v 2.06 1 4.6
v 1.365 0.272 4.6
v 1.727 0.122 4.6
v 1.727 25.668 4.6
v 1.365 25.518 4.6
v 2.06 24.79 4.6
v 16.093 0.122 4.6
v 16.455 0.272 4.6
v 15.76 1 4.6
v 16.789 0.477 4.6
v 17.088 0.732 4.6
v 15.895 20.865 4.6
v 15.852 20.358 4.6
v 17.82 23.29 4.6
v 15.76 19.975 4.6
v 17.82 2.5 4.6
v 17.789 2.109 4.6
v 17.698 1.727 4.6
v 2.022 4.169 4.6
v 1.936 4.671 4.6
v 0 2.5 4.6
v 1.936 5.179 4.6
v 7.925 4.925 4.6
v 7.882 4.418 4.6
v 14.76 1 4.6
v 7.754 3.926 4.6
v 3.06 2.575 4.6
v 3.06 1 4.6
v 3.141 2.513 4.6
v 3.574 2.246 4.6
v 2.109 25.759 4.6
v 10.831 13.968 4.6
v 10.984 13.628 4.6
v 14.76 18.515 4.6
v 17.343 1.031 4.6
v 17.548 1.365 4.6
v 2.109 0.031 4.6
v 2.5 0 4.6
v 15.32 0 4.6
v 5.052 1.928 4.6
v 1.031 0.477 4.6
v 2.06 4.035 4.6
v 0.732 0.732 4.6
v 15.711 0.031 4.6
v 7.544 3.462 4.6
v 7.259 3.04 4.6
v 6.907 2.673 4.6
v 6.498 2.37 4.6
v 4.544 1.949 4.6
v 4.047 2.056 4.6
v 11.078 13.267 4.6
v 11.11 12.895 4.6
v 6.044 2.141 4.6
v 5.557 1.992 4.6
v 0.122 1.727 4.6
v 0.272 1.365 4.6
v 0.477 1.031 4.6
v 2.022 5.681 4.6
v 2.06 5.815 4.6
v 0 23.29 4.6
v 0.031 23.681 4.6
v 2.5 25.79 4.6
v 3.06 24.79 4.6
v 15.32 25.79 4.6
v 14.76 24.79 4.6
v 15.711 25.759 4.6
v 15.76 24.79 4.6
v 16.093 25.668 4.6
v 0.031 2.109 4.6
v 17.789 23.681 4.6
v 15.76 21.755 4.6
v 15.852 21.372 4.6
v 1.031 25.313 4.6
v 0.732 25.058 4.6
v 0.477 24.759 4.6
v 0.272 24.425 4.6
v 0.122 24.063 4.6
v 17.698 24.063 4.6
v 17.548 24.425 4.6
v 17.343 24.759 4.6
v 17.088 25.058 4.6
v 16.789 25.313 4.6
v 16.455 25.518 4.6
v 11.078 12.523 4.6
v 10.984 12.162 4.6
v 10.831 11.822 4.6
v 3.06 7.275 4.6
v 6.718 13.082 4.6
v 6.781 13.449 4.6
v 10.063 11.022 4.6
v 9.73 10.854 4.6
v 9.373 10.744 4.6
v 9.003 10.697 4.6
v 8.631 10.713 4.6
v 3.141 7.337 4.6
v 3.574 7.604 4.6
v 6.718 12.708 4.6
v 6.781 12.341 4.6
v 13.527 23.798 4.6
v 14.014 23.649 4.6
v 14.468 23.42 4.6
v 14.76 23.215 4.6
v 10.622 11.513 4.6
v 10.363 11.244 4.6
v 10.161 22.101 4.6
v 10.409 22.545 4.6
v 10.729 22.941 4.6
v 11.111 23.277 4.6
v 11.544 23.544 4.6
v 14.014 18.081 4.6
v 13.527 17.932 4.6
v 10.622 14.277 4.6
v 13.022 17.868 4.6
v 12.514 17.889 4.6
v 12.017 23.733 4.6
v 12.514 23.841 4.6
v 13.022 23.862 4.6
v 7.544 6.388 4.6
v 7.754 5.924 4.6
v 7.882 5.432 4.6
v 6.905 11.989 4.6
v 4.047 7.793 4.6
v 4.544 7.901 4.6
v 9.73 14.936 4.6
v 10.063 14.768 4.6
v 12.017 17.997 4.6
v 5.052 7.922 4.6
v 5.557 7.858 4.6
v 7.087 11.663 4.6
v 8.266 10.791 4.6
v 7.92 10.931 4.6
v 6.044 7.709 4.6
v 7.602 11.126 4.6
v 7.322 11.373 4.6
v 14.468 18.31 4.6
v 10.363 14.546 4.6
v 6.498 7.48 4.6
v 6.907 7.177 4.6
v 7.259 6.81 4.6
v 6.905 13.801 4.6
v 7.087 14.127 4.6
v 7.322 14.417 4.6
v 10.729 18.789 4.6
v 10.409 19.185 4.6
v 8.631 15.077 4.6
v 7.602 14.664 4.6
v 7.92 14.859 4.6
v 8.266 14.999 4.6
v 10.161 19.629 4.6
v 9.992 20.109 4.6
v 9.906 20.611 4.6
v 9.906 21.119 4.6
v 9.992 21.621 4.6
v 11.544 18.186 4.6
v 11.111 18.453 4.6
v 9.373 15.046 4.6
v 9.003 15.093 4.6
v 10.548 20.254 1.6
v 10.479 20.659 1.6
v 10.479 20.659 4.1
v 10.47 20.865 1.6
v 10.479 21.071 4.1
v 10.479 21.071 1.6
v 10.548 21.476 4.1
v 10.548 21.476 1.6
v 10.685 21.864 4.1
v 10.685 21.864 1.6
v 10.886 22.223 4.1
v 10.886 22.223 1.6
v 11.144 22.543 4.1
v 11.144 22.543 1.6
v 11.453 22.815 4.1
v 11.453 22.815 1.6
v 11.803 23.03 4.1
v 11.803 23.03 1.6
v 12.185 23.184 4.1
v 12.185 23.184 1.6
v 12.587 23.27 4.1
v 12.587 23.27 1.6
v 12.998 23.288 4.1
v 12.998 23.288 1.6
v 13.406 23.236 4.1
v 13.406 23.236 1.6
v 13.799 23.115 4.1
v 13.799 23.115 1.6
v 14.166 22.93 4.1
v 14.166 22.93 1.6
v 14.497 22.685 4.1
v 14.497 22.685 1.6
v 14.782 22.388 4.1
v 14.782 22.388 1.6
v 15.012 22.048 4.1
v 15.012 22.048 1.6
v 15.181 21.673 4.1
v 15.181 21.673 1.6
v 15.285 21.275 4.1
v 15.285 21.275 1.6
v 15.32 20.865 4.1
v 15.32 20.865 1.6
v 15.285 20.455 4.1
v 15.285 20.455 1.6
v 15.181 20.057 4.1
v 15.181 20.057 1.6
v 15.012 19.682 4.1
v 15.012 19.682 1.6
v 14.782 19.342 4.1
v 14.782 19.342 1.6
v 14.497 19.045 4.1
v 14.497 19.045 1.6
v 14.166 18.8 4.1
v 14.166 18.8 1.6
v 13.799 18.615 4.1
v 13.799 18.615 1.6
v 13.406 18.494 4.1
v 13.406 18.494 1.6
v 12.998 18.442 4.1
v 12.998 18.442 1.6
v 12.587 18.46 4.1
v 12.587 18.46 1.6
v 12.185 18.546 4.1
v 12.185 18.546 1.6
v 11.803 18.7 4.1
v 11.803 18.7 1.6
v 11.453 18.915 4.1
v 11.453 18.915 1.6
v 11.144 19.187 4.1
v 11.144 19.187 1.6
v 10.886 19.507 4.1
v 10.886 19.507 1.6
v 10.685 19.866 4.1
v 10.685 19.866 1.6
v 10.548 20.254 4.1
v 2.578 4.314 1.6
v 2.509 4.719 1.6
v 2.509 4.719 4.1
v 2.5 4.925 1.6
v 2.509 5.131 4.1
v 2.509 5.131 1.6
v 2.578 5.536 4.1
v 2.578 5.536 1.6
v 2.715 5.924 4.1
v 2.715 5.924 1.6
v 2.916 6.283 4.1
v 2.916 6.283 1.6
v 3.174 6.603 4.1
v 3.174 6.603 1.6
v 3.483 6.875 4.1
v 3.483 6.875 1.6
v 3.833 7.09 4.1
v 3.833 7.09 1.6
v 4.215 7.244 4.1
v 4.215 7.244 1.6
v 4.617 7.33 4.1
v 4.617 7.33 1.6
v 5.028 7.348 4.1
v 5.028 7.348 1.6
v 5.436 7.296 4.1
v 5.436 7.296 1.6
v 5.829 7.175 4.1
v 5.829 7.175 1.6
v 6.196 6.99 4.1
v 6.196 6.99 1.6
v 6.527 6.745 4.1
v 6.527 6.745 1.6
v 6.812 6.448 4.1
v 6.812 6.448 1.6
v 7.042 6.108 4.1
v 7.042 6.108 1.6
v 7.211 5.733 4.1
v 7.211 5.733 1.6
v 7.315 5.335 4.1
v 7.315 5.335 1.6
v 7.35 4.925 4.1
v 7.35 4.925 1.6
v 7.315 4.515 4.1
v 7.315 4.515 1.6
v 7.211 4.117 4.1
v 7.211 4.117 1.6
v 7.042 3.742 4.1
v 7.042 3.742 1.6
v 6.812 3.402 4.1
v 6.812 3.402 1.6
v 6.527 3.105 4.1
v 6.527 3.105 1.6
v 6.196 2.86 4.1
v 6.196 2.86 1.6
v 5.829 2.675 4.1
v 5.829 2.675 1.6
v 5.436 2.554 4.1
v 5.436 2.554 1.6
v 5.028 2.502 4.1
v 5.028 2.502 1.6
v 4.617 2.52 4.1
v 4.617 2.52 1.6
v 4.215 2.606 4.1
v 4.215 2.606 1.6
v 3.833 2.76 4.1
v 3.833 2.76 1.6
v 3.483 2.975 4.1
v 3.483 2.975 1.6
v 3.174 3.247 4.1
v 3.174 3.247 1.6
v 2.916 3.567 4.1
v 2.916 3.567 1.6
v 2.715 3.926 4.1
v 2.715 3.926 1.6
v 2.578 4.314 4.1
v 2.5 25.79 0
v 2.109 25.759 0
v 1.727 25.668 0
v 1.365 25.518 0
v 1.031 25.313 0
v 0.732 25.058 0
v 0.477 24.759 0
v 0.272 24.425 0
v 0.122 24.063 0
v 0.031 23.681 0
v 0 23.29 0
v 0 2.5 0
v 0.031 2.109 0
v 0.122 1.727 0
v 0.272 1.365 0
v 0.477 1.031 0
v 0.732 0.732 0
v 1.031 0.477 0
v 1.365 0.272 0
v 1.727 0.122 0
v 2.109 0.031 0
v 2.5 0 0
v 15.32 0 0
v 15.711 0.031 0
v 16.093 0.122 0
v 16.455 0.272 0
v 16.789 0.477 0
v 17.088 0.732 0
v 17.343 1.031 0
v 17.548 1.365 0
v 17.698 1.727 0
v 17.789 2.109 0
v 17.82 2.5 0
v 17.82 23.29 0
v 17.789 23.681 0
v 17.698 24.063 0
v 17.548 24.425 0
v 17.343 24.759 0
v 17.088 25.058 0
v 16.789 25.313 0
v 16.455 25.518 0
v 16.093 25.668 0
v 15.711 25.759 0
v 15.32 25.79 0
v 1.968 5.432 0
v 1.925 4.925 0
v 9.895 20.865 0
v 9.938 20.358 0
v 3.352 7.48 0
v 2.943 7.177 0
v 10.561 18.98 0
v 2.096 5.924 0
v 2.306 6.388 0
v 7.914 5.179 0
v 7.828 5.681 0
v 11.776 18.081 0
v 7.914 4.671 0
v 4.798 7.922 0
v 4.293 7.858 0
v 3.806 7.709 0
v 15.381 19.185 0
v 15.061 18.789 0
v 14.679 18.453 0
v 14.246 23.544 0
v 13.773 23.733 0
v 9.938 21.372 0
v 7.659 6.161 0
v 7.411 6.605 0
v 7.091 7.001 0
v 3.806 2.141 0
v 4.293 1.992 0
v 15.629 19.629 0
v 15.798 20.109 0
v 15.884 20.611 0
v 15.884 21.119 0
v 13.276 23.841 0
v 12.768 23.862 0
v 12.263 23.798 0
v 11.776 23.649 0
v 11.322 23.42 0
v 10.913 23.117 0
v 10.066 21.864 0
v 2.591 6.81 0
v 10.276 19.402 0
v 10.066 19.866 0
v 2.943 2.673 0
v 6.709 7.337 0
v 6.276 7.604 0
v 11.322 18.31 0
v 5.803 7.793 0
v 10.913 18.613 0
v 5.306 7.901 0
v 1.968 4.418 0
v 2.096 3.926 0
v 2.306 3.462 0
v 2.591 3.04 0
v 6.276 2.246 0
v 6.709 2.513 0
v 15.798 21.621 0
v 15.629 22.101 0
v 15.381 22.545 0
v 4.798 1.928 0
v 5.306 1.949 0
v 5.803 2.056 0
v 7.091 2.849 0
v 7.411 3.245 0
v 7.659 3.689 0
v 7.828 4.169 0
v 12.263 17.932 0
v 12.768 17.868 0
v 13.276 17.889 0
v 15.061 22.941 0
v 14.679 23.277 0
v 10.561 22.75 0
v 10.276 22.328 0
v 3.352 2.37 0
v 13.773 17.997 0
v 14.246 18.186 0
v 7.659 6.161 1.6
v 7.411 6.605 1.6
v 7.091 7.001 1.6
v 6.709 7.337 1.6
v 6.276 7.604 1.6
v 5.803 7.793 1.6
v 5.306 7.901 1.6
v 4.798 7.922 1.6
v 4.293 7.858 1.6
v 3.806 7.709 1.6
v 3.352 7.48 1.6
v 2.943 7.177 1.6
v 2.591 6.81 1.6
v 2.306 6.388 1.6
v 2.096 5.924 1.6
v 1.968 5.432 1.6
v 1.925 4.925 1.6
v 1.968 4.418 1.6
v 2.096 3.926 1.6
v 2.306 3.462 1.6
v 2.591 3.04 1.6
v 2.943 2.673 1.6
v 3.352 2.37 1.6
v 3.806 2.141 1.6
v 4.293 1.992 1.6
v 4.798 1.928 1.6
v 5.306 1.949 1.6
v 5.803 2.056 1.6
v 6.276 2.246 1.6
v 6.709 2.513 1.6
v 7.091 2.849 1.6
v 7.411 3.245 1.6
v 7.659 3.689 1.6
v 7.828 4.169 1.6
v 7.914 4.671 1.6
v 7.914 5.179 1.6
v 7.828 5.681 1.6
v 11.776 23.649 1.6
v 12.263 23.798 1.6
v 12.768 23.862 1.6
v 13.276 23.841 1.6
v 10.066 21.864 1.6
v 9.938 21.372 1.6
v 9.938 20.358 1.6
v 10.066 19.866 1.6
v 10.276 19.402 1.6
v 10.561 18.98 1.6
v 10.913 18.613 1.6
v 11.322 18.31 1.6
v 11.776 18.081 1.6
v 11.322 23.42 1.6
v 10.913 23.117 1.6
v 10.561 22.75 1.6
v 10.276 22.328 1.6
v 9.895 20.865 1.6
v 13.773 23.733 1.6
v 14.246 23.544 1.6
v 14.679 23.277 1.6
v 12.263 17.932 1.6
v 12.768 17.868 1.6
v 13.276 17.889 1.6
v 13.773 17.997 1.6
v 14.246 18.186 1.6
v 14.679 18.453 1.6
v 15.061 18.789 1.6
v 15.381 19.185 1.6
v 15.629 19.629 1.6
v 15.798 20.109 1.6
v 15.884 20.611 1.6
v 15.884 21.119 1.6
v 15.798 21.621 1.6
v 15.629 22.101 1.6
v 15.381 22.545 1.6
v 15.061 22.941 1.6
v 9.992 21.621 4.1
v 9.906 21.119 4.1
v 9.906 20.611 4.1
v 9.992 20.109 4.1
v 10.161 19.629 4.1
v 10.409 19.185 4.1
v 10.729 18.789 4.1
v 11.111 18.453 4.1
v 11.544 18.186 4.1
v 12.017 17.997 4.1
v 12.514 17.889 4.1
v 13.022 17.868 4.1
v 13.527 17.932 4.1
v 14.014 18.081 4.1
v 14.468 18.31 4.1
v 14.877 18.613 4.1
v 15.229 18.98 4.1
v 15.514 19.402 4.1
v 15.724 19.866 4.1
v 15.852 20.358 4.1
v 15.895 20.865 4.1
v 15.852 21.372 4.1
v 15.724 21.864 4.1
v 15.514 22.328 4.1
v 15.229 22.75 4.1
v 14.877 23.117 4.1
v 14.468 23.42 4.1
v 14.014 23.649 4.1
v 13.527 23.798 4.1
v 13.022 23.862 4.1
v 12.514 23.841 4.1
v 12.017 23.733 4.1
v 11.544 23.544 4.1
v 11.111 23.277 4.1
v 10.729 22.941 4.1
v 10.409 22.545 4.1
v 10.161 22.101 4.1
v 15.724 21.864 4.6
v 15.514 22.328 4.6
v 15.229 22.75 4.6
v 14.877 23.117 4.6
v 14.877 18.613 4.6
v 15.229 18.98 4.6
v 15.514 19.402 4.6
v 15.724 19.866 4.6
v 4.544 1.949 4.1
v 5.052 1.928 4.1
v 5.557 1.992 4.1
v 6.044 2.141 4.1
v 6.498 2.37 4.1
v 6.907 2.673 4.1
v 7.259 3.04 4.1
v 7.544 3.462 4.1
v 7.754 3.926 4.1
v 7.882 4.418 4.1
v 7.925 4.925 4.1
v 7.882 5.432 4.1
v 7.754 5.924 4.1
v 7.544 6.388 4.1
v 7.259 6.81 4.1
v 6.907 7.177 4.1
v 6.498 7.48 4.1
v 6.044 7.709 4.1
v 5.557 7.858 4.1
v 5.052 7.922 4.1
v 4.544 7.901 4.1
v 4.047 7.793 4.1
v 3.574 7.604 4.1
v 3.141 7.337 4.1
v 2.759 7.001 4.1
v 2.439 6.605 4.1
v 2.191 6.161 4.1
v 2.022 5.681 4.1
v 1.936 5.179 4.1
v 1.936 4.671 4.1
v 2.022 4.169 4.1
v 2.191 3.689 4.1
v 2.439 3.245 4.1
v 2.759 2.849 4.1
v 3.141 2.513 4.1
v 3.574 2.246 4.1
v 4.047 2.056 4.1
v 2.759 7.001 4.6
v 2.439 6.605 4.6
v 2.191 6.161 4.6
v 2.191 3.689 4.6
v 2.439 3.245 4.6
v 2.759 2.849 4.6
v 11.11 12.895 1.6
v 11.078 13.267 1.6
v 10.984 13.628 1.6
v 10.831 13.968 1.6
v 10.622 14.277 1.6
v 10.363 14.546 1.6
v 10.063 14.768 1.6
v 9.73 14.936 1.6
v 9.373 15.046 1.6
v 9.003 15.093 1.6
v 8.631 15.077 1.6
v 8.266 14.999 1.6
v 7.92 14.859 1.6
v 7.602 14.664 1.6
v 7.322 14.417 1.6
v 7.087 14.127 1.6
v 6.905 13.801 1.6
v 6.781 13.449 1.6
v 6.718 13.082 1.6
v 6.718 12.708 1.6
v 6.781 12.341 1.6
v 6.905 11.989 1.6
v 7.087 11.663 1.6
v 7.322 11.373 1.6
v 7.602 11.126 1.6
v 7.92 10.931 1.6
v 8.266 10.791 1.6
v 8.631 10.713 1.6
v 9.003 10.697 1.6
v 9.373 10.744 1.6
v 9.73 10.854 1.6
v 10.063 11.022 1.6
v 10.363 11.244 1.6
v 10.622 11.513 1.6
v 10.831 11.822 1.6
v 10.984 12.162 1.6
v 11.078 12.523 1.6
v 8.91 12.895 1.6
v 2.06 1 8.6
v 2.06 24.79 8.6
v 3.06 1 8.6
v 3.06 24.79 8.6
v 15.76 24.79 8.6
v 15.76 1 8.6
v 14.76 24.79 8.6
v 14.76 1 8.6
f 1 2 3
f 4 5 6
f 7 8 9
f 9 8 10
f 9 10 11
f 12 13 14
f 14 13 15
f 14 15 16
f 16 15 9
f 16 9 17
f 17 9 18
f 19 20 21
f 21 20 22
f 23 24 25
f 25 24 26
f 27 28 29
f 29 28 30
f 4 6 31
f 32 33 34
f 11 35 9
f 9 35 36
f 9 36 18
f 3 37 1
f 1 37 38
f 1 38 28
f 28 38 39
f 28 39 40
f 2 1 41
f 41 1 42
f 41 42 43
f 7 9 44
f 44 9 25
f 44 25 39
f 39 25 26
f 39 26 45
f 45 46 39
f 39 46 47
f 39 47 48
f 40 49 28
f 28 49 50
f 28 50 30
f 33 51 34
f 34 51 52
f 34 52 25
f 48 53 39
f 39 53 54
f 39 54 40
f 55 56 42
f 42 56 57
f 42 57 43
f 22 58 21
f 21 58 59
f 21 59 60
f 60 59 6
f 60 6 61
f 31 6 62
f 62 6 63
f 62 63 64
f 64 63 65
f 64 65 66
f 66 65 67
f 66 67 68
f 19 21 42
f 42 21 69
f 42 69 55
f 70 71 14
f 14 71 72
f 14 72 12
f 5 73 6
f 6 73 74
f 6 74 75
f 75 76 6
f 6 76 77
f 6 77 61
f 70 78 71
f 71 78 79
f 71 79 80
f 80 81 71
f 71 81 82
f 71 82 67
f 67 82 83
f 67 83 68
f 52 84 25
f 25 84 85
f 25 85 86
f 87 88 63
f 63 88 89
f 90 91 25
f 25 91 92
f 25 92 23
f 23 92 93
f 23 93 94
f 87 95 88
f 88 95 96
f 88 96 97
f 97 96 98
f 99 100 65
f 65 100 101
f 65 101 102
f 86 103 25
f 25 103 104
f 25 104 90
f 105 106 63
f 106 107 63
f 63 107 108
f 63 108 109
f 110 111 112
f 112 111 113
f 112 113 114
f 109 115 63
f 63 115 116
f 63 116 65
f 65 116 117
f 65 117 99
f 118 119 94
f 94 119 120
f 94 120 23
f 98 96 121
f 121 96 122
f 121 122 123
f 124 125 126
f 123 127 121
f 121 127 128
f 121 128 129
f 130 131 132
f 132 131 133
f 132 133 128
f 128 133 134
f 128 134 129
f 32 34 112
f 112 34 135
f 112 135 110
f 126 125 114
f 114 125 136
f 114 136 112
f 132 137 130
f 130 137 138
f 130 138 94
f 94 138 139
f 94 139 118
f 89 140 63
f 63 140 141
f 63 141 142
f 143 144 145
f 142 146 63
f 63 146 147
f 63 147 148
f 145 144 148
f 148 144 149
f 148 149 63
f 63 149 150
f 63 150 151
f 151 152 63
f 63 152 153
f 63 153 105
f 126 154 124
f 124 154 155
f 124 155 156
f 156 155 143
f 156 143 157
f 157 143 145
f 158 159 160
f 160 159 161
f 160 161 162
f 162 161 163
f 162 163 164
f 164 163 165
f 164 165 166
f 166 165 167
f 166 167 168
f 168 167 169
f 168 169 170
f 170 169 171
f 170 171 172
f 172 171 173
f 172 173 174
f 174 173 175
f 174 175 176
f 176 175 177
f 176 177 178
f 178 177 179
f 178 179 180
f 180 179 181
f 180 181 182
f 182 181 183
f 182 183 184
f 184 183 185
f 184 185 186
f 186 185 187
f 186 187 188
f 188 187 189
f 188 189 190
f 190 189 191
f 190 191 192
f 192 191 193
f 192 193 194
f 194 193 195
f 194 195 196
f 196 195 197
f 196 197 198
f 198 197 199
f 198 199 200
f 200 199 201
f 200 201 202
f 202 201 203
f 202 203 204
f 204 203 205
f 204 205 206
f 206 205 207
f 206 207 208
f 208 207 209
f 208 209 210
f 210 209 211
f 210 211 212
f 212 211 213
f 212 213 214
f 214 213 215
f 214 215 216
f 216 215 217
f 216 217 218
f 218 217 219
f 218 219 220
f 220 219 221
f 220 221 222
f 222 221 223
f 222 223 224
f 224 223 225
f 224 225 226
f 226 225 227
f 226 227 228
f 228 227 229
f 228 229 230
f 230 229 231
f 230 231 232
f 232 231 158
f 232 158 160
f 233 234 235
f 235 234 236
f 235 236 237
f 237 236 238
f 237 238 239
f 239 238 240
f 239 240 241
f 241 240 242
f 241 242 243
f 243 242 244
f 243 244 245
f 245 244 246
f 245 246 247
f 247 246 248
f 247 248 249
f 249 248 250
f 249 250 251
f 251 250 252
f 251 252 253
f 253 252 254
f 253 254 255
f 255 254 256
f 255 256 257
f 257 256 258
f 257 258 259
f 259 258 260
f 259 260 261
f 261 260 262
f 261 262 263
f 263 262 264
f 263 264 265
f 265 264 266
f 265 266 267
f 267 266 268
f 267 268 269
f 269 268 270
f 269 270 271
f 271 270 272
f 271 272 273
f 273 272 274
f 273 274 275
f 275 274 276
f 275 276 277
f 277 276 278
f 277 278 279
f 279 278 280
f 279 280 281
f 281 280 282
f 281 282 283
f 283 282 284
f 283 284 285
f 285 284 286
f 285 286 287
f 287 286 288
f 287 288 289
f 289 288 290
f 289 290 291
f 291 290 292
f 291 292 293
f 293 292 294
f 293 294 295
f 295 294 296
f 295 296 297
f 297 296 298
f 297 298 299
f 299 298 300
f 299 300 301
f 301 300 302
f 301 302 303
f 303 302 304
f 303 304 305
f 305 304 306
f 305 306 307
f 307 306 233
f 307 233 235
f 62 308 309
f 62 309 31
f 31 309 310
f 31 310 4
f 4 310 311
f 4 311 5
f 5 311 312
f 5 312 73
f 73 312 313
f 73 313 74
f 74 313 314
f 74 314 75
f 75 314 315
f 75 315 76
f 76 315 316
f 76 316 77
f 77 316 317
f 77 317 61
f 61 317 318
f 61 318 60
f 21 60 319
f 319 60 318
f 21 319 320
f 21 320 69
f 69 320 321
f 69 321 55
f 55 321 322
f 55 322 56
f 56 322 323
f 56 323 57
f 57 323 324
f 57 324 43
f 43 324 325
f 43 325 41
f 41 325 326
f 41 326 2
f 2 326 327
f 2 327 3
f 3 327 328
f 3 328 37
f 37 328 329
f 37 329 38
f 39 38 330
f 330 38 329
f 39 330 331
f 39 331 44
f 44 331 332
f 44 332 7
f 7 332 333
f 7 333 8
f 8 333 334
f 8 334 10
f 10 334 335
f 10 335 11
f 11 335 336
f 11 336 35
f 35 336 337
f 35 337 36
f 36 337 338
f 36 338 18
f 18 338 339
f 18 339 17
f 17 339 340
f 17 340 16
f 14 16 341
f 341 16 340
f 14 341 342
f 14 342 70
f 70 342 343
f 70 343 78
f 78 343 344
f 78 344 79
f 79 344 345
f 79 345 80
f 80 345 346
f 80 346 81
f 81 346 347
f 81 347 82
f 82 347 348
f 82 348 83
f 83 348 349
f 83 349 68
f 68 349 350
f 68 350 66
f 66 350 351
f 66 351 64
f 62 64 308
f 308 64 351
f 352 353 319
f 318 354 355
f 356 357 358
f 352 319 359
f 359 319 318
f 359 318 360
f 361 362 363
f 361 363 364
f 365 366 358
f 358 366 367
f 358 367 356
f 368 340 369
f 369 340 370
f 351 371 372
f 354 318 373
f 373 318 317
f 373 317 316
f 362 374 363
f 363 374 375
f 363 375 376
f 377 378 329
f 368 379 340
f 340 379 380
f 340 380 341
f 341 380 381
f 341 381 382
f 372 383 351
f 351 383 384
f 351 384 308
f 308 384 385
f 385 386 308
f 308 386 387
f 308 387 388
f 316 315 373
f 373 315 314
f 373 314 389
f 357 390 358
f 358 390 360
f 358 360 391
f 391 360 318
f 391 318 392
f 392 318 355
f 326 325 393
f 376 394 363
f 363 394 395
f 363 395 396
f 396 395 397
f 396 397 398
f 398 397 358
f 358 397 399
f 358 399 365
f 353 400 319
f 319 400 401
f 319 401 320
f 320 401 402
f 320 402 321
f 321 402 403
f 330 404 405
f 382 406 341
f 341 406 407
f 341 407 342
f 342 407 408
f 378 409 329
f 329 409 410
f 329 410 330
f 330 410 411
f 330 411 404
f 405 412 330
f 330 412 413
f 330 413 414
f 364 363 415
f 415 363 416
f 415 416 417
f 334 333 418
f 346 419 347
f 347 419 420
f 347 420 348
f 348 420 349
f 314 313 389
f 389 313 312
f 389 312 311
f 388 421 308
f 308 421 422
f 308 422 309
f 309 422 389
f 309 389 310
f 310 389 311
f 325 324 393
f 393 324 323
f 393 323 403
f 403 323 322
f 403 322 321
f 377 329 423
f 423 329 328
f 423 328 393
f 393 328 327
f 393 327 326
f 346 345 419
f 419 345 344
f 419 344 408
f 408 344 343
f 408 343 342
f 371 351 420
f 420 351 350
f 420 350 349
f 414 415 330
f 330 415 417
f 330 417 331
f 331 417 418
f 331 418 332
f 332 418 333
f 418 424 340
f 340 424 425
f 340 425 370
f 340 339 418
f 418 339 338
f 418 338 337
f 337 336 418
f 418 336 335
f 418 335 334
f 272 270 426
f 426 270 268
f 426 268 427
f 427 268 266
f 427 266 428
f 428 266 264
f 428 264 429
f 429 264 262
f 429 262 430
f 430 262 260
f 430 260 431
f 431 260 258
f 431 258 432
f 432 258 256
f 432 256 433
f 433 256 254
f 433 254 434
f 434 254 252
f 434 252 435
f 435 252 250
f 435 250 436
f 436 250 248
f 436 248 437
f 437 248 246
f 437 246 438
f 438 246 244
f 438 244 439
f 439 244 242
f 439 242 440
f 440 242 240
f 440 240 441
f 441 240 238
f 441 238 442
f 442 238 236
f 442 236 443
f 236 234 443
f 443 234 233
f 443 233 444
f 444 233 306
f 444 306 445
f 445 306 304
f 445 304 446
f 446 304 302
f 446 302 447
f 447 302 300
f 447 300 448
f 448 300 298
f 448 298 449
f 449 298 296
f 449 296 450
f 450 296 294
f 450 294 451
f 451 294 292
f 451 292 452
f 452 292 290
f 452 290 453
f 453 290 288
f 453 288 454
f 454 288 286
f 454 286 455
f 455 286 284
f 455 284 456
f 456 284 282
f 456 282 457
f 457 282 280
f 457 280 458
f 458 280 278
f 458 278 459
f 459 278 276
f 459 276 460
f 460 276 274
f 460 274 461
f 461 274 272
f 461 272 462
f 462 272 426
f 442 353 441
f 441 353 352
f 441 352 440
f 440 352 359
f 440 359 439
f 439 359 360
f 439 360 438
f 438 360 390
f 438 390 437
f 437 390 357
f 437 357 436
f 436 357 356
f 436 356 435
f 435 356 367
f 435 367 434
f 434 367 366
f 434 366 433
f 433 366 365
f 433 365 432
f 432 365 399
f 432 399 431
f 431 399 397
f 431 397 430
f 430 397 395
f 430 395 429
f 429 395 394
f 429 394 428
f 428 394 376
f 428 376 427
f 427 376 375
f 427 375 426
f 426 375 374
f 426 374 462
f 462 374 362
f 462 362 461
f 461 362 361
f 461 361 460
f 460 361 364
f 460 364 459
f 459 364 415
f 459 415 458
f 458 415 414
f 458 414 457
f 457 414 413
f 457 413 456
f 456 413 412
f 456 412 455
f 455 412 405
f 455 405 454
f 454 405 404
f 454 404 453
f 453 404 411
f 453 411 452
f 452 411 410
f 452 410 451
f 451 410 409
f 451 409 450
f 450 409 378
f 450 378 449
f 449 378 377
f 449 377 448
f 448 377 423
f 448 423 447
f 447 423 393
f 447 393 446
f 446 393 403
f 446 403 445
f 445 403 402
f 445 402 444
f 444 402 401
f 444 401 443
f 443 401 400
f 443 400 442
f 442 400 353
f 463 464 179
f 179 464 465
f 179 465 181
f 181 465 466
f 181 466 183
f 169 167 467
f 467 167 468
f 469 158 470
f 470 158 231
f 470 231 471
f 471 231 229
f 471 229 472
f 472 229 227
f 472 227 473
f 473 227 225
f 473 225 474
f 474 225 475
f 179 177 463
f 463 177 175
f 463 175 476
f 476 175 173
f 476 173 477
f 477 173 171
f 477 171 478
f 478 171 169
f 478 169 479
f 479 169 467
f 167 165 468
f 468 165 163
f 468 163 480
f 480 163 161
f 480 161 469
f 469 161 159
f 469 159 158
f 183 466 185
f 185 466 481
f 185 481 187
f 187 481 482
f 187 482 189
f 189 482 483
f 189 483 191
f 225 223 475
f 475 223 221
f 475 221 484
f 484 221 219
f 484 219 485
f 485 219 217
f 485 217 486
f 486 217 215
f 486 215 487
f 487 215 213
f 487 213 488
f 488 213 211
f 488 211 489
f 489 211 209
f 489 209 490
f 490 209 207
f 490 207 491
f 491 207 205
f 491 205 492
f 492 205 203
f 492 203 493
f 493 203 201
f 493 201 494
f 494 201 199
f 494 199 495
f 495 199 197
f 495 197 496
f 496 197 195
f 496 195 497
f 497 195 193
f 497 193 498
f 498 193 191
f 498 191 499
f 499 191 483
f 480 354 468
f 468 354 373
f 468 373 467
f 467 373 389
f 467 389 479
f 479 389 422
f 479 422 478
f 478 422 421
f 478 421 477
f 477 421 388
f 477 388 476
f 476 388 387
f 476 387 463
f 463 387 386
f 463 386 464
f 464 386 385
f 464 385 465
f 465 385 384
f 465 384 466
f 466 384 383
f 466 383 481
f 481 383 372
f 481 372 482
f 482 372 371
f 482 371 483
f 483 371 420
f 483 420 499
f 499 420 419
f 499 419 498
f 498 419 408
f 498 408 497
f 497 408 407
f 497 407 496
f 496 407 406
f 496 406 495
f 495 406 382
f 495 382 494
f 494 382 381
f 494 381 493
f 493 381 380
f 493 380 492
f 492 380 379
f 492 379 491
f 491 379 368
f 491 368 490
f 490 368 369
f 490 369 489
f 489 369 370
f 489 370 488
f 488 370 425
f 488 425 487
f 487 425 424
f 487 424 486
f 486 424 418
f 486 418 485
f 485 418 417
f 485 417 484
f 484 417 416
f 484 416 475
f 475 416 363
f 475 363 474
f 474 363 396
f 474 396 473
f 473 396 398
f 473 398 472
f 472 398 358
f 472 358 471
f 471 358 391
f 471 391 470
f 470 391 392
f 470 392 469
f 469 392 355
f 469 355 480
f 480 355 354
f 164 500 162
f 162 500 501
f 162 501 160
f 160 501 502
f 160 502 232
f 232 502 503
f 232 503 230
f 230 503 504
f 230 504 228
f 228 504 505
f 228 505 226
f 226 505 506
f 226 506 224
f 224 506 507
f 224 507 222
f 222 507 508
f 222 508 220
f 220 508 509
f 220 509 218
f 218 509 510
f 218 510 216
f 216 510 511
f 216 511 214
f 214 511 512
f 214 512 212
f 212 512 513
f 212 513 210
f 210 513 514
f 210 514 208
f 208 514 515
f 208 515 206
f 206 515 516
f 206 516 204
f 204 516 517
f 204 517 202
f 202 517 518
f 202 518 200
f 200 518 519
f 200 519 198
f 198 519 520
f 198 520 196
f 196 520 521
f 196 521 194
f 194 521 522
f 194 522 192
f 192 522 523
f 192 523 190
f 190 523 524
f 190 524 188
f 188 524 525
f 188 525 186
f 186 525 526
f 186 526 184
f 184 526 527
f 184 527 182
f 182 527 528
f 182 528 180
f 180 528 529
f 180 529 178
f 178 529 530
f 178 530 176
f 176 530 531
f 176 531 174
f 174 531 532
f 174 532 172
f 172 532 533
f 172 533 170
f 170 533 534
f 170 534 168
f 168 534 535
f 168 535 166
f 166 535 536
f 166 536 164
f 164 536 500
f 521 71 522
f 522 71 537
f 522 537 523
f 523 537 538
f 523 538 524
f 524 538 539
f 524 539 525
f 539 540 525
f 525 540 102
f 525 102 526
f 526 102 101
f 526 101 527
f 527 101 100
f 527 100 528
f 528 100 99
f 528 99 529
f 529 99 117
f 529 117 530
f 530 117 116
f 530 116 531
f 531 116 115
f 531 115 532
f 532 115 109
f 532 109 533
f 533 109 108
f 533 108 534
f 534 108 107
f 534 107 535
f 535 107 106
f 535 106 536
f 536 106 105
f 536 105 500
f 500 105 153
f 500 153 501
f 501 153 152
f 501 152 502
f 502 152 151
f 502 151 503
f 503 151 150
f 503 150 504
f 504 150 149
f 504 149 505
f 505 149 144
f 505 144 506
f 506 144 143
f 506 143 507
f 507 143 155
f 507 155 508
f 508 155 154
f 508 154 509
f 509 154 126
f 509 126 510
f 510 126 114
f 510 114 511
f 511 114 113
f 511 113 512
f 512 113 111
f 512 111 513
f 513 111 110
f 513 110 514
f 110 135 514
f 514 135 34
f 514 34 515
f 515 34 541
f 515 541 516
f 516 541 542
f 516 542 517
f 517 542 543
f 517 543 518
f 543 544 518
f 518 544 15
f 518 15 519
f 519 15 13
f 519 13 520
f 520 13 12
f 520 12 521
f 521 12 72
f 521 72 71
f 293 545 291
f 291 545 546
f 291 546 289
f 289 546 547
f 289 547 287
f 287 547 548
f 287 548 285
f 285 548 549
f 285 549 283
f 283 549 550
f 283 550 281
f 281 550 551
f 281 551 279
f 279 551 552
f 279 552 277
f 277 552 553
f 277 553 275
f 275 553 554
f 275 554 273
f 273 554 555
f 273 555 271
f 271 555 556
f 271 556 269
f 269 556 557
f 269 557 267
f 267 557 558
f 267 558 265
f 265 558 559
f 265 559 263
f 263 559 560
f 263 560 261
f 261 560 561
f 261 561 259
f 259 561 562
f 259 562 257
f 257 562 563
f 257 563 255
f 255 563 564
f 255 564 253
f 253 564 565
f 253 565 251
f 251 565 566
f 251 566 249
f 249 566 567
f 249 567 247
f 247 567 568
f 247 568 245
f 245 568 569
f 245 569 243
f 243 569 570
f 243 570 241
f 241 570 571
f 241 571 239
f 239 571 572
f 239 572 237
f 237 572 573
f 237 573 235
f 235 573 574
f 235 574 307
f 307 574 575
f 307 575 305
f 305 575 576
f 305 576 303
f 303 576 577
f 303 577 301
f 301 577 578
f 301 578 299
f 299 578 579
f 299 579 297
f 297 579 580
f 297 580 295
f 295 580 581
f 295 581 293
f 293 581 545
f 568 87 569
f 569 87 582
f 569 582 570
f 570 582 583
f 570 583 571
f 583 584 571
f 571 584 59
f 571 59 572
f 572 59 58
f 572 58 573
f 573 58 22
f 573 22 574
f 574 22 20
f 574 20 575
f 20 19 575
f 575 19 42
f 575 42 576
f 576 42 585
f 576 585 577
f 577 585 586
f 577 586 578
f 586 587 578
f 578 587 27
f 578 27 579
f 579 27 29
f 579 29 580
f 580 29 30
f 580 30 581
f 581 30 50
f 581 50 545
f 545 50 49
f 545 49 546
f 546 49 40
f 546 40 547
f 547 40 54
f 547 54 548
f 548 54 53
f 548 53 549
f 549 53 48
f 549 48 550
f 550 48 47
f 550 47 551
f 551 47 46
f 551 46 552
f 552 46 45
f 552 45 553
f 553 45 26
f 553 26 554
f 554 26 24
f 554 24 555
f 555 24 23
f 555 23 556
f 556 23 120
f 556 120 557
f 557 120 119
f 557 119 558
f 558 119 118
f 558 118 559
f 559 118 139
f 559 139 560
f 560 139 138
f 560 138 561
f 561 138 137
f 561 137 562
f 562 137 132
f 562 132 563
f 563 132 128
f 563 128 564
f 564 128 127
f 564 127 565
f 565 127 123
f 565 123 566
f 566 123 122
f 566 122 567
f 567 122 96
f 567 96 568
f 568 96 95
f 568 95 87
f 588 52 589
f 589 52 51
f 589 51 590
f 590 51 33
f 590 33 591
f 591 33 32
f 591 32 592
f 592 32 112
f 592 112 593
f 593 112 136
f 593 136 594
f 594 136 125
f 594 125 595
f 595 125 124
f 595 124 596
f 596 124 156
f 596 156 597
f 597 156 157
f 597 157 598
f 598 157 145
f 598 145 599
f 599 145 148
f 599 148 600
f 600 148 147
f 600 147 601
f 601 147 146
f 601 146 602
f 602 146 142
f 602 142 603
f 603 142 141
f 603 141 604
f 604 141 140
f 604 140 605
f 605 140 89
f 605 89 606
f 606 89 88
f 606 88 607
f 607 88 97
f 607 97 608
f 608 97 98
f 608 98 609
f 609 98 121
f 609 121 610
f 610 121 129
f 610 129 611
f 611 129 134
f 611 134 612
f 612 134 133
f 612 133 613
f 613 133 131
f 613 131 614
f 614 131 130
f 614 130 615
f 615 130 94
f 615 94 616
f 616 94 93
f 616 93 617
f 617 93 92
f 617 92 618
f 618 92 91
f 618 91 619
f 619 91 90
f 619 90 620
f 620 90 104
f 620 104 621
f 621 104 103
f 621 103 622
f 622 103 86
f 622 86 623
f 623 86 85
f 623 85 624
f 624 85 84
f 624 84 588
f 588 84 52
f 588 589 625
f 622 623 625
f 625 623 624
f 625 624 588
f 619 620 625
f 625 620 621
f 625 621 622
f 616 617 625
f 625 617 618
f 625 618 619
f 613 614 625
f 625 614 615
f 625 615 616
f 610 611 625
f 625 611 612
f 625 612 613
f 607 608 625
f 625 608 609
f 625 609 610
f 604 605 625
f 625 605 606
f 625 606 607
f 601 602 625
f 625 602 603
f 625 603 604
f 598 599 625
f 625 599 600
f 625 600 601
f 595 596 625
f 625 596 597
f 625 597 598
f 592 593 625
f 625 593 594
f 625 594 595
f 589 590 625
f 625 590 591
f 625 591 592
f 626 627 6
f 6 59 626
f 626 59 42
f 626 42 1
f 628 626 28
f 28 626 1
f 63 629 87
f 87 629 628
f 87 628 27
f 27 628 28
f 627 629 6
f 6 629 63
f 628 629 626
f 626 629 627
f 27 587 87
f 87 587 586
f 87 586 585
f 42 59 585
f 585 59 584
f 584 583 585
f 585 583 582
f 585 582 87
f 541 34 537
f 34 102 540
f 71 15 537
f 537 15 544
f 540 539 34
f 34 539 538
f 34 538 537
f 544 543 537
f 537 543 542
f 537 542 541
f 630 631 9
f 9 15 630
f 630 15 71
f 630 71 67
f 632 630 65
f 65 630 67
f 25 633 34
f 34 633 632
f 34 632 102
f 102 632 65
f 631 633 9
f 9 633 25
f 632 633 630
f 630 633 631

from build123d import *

# Parameters (mm, degrees)
BOSS_EXTRUDE1_DEPTH = 4.6
SKETCH4_R           = 2.425
CUT_EXTRUDE1_DEPTH  = 14.6
SKETCH5_R           = 3
CUT_EXTRUDE2_DEPTH  = 1.6
SKETCH6_R           = 3
CUT_EXTRUDE3_DEPTH  = 0.5
SKETCH7_R           = 2.2
CUT_EXTRUDE4_DEPTH  = 3
SKETCH8_W           = 1
SKETCH8_H           = 23.79
BOSS_EXTRUDE2_DEPTH = 4


with BuildPart() as part:
    # Sketch1 → Boss-Extrude1 (new body)
    with BuildSketch(Plane.XY):
        with BuildLine():
            Line((2.5, 0), (15.32, 0))
            ThreePointArc((15.32, 0), (17.087766953, 0.732233047), (17.82, 2.5))
            Line((17.82, 2.5), (17.82, 23.29))
            ThreePointArc((17.82, 23.29), (17.087766953, 25.057766953), (15.32, 25.79))
            Line((15.32, 25.79), (2.5, 25.79))
            ThreePointArc((2.5, 25.79), (0.732233047, 25.057766953), (0, 23.29))
            Line((0, 23.29), (0, 2.5))
            ThreePointArc((0, 2.5), (0.732233047, 0.732233047), (2.5, 0))
        make_face()
    extrude(amount=BOSS_EXTRUDE1_DEPTH)

    # Sketch4 → Cut-Extrude1 (cut)
    with BuildSketch(Plane.XY.offset(4.6)):
        with Locations((4.925, 4.925)):
            Circle(SKETCH4_R)
        with Locations((12.895, 20.865)):
            Circle(SKETCH4_R)
    extrude(amount=-CUT_EXTRUDE1_DEPTH, mode=Mode.SUBTRACT)

    # Sketch5 → Cut-Extrude2 (cut)
    with BuildSketch(Plane(origin=(0, 0, 0), x_dir=(-1, 0, 0), z_dir=(0, 0, -1))):
        with Locations((-12.895, 20.865)):
            Circle(SKETCH5_R)
        with Locations((-4.925, 4.925)):
            Circle(SKETCH5_R)
    extrude(amount=-CUT_EXTRUDE2_DEPTH, mode=Mode.SUBTRACT)

    # Sketch6 → Cut-Extrude3 (cut)
    with BuildSketch(Plane.XY.offset(4.6)):
        with Locations((4.925, 4.925)):
            Circle(SKETCH6_R)
        with Locations((12.895, 20.865)):
            Circle(SKETCH6_R)
    extrude(amount=-CUT_EXTRUDE3_DEPTH, mode=Mode.SUBTRACT)

    # Sketch7 → Cut-Extrude4 (cut)
    with BuildSketch(Plane.XY.offset(4.6)):
        with Locations((8.91, 12.895)):
            Circle(SKETCH7_R)
    extrude(amount=-CUT_EXTRUDE4_DEPTH, mode=Mode.SUBTRACT)

    # Sketch8 → Boss-Extrude2 (add)
    with BuildSketch(Plane.XY.offset(4.6)):
        with Locations((2.56, 12.895)):
            Rectangle(SKETCH8_W, SKETCH8_H)
        with Locations((15.26, 12.895)):
            Rectangle(SKETCH8_W, SKETCH8_H)
    extrude(amount=BOSS_EXTRUDE2_DEPTH)


solid = part.part
